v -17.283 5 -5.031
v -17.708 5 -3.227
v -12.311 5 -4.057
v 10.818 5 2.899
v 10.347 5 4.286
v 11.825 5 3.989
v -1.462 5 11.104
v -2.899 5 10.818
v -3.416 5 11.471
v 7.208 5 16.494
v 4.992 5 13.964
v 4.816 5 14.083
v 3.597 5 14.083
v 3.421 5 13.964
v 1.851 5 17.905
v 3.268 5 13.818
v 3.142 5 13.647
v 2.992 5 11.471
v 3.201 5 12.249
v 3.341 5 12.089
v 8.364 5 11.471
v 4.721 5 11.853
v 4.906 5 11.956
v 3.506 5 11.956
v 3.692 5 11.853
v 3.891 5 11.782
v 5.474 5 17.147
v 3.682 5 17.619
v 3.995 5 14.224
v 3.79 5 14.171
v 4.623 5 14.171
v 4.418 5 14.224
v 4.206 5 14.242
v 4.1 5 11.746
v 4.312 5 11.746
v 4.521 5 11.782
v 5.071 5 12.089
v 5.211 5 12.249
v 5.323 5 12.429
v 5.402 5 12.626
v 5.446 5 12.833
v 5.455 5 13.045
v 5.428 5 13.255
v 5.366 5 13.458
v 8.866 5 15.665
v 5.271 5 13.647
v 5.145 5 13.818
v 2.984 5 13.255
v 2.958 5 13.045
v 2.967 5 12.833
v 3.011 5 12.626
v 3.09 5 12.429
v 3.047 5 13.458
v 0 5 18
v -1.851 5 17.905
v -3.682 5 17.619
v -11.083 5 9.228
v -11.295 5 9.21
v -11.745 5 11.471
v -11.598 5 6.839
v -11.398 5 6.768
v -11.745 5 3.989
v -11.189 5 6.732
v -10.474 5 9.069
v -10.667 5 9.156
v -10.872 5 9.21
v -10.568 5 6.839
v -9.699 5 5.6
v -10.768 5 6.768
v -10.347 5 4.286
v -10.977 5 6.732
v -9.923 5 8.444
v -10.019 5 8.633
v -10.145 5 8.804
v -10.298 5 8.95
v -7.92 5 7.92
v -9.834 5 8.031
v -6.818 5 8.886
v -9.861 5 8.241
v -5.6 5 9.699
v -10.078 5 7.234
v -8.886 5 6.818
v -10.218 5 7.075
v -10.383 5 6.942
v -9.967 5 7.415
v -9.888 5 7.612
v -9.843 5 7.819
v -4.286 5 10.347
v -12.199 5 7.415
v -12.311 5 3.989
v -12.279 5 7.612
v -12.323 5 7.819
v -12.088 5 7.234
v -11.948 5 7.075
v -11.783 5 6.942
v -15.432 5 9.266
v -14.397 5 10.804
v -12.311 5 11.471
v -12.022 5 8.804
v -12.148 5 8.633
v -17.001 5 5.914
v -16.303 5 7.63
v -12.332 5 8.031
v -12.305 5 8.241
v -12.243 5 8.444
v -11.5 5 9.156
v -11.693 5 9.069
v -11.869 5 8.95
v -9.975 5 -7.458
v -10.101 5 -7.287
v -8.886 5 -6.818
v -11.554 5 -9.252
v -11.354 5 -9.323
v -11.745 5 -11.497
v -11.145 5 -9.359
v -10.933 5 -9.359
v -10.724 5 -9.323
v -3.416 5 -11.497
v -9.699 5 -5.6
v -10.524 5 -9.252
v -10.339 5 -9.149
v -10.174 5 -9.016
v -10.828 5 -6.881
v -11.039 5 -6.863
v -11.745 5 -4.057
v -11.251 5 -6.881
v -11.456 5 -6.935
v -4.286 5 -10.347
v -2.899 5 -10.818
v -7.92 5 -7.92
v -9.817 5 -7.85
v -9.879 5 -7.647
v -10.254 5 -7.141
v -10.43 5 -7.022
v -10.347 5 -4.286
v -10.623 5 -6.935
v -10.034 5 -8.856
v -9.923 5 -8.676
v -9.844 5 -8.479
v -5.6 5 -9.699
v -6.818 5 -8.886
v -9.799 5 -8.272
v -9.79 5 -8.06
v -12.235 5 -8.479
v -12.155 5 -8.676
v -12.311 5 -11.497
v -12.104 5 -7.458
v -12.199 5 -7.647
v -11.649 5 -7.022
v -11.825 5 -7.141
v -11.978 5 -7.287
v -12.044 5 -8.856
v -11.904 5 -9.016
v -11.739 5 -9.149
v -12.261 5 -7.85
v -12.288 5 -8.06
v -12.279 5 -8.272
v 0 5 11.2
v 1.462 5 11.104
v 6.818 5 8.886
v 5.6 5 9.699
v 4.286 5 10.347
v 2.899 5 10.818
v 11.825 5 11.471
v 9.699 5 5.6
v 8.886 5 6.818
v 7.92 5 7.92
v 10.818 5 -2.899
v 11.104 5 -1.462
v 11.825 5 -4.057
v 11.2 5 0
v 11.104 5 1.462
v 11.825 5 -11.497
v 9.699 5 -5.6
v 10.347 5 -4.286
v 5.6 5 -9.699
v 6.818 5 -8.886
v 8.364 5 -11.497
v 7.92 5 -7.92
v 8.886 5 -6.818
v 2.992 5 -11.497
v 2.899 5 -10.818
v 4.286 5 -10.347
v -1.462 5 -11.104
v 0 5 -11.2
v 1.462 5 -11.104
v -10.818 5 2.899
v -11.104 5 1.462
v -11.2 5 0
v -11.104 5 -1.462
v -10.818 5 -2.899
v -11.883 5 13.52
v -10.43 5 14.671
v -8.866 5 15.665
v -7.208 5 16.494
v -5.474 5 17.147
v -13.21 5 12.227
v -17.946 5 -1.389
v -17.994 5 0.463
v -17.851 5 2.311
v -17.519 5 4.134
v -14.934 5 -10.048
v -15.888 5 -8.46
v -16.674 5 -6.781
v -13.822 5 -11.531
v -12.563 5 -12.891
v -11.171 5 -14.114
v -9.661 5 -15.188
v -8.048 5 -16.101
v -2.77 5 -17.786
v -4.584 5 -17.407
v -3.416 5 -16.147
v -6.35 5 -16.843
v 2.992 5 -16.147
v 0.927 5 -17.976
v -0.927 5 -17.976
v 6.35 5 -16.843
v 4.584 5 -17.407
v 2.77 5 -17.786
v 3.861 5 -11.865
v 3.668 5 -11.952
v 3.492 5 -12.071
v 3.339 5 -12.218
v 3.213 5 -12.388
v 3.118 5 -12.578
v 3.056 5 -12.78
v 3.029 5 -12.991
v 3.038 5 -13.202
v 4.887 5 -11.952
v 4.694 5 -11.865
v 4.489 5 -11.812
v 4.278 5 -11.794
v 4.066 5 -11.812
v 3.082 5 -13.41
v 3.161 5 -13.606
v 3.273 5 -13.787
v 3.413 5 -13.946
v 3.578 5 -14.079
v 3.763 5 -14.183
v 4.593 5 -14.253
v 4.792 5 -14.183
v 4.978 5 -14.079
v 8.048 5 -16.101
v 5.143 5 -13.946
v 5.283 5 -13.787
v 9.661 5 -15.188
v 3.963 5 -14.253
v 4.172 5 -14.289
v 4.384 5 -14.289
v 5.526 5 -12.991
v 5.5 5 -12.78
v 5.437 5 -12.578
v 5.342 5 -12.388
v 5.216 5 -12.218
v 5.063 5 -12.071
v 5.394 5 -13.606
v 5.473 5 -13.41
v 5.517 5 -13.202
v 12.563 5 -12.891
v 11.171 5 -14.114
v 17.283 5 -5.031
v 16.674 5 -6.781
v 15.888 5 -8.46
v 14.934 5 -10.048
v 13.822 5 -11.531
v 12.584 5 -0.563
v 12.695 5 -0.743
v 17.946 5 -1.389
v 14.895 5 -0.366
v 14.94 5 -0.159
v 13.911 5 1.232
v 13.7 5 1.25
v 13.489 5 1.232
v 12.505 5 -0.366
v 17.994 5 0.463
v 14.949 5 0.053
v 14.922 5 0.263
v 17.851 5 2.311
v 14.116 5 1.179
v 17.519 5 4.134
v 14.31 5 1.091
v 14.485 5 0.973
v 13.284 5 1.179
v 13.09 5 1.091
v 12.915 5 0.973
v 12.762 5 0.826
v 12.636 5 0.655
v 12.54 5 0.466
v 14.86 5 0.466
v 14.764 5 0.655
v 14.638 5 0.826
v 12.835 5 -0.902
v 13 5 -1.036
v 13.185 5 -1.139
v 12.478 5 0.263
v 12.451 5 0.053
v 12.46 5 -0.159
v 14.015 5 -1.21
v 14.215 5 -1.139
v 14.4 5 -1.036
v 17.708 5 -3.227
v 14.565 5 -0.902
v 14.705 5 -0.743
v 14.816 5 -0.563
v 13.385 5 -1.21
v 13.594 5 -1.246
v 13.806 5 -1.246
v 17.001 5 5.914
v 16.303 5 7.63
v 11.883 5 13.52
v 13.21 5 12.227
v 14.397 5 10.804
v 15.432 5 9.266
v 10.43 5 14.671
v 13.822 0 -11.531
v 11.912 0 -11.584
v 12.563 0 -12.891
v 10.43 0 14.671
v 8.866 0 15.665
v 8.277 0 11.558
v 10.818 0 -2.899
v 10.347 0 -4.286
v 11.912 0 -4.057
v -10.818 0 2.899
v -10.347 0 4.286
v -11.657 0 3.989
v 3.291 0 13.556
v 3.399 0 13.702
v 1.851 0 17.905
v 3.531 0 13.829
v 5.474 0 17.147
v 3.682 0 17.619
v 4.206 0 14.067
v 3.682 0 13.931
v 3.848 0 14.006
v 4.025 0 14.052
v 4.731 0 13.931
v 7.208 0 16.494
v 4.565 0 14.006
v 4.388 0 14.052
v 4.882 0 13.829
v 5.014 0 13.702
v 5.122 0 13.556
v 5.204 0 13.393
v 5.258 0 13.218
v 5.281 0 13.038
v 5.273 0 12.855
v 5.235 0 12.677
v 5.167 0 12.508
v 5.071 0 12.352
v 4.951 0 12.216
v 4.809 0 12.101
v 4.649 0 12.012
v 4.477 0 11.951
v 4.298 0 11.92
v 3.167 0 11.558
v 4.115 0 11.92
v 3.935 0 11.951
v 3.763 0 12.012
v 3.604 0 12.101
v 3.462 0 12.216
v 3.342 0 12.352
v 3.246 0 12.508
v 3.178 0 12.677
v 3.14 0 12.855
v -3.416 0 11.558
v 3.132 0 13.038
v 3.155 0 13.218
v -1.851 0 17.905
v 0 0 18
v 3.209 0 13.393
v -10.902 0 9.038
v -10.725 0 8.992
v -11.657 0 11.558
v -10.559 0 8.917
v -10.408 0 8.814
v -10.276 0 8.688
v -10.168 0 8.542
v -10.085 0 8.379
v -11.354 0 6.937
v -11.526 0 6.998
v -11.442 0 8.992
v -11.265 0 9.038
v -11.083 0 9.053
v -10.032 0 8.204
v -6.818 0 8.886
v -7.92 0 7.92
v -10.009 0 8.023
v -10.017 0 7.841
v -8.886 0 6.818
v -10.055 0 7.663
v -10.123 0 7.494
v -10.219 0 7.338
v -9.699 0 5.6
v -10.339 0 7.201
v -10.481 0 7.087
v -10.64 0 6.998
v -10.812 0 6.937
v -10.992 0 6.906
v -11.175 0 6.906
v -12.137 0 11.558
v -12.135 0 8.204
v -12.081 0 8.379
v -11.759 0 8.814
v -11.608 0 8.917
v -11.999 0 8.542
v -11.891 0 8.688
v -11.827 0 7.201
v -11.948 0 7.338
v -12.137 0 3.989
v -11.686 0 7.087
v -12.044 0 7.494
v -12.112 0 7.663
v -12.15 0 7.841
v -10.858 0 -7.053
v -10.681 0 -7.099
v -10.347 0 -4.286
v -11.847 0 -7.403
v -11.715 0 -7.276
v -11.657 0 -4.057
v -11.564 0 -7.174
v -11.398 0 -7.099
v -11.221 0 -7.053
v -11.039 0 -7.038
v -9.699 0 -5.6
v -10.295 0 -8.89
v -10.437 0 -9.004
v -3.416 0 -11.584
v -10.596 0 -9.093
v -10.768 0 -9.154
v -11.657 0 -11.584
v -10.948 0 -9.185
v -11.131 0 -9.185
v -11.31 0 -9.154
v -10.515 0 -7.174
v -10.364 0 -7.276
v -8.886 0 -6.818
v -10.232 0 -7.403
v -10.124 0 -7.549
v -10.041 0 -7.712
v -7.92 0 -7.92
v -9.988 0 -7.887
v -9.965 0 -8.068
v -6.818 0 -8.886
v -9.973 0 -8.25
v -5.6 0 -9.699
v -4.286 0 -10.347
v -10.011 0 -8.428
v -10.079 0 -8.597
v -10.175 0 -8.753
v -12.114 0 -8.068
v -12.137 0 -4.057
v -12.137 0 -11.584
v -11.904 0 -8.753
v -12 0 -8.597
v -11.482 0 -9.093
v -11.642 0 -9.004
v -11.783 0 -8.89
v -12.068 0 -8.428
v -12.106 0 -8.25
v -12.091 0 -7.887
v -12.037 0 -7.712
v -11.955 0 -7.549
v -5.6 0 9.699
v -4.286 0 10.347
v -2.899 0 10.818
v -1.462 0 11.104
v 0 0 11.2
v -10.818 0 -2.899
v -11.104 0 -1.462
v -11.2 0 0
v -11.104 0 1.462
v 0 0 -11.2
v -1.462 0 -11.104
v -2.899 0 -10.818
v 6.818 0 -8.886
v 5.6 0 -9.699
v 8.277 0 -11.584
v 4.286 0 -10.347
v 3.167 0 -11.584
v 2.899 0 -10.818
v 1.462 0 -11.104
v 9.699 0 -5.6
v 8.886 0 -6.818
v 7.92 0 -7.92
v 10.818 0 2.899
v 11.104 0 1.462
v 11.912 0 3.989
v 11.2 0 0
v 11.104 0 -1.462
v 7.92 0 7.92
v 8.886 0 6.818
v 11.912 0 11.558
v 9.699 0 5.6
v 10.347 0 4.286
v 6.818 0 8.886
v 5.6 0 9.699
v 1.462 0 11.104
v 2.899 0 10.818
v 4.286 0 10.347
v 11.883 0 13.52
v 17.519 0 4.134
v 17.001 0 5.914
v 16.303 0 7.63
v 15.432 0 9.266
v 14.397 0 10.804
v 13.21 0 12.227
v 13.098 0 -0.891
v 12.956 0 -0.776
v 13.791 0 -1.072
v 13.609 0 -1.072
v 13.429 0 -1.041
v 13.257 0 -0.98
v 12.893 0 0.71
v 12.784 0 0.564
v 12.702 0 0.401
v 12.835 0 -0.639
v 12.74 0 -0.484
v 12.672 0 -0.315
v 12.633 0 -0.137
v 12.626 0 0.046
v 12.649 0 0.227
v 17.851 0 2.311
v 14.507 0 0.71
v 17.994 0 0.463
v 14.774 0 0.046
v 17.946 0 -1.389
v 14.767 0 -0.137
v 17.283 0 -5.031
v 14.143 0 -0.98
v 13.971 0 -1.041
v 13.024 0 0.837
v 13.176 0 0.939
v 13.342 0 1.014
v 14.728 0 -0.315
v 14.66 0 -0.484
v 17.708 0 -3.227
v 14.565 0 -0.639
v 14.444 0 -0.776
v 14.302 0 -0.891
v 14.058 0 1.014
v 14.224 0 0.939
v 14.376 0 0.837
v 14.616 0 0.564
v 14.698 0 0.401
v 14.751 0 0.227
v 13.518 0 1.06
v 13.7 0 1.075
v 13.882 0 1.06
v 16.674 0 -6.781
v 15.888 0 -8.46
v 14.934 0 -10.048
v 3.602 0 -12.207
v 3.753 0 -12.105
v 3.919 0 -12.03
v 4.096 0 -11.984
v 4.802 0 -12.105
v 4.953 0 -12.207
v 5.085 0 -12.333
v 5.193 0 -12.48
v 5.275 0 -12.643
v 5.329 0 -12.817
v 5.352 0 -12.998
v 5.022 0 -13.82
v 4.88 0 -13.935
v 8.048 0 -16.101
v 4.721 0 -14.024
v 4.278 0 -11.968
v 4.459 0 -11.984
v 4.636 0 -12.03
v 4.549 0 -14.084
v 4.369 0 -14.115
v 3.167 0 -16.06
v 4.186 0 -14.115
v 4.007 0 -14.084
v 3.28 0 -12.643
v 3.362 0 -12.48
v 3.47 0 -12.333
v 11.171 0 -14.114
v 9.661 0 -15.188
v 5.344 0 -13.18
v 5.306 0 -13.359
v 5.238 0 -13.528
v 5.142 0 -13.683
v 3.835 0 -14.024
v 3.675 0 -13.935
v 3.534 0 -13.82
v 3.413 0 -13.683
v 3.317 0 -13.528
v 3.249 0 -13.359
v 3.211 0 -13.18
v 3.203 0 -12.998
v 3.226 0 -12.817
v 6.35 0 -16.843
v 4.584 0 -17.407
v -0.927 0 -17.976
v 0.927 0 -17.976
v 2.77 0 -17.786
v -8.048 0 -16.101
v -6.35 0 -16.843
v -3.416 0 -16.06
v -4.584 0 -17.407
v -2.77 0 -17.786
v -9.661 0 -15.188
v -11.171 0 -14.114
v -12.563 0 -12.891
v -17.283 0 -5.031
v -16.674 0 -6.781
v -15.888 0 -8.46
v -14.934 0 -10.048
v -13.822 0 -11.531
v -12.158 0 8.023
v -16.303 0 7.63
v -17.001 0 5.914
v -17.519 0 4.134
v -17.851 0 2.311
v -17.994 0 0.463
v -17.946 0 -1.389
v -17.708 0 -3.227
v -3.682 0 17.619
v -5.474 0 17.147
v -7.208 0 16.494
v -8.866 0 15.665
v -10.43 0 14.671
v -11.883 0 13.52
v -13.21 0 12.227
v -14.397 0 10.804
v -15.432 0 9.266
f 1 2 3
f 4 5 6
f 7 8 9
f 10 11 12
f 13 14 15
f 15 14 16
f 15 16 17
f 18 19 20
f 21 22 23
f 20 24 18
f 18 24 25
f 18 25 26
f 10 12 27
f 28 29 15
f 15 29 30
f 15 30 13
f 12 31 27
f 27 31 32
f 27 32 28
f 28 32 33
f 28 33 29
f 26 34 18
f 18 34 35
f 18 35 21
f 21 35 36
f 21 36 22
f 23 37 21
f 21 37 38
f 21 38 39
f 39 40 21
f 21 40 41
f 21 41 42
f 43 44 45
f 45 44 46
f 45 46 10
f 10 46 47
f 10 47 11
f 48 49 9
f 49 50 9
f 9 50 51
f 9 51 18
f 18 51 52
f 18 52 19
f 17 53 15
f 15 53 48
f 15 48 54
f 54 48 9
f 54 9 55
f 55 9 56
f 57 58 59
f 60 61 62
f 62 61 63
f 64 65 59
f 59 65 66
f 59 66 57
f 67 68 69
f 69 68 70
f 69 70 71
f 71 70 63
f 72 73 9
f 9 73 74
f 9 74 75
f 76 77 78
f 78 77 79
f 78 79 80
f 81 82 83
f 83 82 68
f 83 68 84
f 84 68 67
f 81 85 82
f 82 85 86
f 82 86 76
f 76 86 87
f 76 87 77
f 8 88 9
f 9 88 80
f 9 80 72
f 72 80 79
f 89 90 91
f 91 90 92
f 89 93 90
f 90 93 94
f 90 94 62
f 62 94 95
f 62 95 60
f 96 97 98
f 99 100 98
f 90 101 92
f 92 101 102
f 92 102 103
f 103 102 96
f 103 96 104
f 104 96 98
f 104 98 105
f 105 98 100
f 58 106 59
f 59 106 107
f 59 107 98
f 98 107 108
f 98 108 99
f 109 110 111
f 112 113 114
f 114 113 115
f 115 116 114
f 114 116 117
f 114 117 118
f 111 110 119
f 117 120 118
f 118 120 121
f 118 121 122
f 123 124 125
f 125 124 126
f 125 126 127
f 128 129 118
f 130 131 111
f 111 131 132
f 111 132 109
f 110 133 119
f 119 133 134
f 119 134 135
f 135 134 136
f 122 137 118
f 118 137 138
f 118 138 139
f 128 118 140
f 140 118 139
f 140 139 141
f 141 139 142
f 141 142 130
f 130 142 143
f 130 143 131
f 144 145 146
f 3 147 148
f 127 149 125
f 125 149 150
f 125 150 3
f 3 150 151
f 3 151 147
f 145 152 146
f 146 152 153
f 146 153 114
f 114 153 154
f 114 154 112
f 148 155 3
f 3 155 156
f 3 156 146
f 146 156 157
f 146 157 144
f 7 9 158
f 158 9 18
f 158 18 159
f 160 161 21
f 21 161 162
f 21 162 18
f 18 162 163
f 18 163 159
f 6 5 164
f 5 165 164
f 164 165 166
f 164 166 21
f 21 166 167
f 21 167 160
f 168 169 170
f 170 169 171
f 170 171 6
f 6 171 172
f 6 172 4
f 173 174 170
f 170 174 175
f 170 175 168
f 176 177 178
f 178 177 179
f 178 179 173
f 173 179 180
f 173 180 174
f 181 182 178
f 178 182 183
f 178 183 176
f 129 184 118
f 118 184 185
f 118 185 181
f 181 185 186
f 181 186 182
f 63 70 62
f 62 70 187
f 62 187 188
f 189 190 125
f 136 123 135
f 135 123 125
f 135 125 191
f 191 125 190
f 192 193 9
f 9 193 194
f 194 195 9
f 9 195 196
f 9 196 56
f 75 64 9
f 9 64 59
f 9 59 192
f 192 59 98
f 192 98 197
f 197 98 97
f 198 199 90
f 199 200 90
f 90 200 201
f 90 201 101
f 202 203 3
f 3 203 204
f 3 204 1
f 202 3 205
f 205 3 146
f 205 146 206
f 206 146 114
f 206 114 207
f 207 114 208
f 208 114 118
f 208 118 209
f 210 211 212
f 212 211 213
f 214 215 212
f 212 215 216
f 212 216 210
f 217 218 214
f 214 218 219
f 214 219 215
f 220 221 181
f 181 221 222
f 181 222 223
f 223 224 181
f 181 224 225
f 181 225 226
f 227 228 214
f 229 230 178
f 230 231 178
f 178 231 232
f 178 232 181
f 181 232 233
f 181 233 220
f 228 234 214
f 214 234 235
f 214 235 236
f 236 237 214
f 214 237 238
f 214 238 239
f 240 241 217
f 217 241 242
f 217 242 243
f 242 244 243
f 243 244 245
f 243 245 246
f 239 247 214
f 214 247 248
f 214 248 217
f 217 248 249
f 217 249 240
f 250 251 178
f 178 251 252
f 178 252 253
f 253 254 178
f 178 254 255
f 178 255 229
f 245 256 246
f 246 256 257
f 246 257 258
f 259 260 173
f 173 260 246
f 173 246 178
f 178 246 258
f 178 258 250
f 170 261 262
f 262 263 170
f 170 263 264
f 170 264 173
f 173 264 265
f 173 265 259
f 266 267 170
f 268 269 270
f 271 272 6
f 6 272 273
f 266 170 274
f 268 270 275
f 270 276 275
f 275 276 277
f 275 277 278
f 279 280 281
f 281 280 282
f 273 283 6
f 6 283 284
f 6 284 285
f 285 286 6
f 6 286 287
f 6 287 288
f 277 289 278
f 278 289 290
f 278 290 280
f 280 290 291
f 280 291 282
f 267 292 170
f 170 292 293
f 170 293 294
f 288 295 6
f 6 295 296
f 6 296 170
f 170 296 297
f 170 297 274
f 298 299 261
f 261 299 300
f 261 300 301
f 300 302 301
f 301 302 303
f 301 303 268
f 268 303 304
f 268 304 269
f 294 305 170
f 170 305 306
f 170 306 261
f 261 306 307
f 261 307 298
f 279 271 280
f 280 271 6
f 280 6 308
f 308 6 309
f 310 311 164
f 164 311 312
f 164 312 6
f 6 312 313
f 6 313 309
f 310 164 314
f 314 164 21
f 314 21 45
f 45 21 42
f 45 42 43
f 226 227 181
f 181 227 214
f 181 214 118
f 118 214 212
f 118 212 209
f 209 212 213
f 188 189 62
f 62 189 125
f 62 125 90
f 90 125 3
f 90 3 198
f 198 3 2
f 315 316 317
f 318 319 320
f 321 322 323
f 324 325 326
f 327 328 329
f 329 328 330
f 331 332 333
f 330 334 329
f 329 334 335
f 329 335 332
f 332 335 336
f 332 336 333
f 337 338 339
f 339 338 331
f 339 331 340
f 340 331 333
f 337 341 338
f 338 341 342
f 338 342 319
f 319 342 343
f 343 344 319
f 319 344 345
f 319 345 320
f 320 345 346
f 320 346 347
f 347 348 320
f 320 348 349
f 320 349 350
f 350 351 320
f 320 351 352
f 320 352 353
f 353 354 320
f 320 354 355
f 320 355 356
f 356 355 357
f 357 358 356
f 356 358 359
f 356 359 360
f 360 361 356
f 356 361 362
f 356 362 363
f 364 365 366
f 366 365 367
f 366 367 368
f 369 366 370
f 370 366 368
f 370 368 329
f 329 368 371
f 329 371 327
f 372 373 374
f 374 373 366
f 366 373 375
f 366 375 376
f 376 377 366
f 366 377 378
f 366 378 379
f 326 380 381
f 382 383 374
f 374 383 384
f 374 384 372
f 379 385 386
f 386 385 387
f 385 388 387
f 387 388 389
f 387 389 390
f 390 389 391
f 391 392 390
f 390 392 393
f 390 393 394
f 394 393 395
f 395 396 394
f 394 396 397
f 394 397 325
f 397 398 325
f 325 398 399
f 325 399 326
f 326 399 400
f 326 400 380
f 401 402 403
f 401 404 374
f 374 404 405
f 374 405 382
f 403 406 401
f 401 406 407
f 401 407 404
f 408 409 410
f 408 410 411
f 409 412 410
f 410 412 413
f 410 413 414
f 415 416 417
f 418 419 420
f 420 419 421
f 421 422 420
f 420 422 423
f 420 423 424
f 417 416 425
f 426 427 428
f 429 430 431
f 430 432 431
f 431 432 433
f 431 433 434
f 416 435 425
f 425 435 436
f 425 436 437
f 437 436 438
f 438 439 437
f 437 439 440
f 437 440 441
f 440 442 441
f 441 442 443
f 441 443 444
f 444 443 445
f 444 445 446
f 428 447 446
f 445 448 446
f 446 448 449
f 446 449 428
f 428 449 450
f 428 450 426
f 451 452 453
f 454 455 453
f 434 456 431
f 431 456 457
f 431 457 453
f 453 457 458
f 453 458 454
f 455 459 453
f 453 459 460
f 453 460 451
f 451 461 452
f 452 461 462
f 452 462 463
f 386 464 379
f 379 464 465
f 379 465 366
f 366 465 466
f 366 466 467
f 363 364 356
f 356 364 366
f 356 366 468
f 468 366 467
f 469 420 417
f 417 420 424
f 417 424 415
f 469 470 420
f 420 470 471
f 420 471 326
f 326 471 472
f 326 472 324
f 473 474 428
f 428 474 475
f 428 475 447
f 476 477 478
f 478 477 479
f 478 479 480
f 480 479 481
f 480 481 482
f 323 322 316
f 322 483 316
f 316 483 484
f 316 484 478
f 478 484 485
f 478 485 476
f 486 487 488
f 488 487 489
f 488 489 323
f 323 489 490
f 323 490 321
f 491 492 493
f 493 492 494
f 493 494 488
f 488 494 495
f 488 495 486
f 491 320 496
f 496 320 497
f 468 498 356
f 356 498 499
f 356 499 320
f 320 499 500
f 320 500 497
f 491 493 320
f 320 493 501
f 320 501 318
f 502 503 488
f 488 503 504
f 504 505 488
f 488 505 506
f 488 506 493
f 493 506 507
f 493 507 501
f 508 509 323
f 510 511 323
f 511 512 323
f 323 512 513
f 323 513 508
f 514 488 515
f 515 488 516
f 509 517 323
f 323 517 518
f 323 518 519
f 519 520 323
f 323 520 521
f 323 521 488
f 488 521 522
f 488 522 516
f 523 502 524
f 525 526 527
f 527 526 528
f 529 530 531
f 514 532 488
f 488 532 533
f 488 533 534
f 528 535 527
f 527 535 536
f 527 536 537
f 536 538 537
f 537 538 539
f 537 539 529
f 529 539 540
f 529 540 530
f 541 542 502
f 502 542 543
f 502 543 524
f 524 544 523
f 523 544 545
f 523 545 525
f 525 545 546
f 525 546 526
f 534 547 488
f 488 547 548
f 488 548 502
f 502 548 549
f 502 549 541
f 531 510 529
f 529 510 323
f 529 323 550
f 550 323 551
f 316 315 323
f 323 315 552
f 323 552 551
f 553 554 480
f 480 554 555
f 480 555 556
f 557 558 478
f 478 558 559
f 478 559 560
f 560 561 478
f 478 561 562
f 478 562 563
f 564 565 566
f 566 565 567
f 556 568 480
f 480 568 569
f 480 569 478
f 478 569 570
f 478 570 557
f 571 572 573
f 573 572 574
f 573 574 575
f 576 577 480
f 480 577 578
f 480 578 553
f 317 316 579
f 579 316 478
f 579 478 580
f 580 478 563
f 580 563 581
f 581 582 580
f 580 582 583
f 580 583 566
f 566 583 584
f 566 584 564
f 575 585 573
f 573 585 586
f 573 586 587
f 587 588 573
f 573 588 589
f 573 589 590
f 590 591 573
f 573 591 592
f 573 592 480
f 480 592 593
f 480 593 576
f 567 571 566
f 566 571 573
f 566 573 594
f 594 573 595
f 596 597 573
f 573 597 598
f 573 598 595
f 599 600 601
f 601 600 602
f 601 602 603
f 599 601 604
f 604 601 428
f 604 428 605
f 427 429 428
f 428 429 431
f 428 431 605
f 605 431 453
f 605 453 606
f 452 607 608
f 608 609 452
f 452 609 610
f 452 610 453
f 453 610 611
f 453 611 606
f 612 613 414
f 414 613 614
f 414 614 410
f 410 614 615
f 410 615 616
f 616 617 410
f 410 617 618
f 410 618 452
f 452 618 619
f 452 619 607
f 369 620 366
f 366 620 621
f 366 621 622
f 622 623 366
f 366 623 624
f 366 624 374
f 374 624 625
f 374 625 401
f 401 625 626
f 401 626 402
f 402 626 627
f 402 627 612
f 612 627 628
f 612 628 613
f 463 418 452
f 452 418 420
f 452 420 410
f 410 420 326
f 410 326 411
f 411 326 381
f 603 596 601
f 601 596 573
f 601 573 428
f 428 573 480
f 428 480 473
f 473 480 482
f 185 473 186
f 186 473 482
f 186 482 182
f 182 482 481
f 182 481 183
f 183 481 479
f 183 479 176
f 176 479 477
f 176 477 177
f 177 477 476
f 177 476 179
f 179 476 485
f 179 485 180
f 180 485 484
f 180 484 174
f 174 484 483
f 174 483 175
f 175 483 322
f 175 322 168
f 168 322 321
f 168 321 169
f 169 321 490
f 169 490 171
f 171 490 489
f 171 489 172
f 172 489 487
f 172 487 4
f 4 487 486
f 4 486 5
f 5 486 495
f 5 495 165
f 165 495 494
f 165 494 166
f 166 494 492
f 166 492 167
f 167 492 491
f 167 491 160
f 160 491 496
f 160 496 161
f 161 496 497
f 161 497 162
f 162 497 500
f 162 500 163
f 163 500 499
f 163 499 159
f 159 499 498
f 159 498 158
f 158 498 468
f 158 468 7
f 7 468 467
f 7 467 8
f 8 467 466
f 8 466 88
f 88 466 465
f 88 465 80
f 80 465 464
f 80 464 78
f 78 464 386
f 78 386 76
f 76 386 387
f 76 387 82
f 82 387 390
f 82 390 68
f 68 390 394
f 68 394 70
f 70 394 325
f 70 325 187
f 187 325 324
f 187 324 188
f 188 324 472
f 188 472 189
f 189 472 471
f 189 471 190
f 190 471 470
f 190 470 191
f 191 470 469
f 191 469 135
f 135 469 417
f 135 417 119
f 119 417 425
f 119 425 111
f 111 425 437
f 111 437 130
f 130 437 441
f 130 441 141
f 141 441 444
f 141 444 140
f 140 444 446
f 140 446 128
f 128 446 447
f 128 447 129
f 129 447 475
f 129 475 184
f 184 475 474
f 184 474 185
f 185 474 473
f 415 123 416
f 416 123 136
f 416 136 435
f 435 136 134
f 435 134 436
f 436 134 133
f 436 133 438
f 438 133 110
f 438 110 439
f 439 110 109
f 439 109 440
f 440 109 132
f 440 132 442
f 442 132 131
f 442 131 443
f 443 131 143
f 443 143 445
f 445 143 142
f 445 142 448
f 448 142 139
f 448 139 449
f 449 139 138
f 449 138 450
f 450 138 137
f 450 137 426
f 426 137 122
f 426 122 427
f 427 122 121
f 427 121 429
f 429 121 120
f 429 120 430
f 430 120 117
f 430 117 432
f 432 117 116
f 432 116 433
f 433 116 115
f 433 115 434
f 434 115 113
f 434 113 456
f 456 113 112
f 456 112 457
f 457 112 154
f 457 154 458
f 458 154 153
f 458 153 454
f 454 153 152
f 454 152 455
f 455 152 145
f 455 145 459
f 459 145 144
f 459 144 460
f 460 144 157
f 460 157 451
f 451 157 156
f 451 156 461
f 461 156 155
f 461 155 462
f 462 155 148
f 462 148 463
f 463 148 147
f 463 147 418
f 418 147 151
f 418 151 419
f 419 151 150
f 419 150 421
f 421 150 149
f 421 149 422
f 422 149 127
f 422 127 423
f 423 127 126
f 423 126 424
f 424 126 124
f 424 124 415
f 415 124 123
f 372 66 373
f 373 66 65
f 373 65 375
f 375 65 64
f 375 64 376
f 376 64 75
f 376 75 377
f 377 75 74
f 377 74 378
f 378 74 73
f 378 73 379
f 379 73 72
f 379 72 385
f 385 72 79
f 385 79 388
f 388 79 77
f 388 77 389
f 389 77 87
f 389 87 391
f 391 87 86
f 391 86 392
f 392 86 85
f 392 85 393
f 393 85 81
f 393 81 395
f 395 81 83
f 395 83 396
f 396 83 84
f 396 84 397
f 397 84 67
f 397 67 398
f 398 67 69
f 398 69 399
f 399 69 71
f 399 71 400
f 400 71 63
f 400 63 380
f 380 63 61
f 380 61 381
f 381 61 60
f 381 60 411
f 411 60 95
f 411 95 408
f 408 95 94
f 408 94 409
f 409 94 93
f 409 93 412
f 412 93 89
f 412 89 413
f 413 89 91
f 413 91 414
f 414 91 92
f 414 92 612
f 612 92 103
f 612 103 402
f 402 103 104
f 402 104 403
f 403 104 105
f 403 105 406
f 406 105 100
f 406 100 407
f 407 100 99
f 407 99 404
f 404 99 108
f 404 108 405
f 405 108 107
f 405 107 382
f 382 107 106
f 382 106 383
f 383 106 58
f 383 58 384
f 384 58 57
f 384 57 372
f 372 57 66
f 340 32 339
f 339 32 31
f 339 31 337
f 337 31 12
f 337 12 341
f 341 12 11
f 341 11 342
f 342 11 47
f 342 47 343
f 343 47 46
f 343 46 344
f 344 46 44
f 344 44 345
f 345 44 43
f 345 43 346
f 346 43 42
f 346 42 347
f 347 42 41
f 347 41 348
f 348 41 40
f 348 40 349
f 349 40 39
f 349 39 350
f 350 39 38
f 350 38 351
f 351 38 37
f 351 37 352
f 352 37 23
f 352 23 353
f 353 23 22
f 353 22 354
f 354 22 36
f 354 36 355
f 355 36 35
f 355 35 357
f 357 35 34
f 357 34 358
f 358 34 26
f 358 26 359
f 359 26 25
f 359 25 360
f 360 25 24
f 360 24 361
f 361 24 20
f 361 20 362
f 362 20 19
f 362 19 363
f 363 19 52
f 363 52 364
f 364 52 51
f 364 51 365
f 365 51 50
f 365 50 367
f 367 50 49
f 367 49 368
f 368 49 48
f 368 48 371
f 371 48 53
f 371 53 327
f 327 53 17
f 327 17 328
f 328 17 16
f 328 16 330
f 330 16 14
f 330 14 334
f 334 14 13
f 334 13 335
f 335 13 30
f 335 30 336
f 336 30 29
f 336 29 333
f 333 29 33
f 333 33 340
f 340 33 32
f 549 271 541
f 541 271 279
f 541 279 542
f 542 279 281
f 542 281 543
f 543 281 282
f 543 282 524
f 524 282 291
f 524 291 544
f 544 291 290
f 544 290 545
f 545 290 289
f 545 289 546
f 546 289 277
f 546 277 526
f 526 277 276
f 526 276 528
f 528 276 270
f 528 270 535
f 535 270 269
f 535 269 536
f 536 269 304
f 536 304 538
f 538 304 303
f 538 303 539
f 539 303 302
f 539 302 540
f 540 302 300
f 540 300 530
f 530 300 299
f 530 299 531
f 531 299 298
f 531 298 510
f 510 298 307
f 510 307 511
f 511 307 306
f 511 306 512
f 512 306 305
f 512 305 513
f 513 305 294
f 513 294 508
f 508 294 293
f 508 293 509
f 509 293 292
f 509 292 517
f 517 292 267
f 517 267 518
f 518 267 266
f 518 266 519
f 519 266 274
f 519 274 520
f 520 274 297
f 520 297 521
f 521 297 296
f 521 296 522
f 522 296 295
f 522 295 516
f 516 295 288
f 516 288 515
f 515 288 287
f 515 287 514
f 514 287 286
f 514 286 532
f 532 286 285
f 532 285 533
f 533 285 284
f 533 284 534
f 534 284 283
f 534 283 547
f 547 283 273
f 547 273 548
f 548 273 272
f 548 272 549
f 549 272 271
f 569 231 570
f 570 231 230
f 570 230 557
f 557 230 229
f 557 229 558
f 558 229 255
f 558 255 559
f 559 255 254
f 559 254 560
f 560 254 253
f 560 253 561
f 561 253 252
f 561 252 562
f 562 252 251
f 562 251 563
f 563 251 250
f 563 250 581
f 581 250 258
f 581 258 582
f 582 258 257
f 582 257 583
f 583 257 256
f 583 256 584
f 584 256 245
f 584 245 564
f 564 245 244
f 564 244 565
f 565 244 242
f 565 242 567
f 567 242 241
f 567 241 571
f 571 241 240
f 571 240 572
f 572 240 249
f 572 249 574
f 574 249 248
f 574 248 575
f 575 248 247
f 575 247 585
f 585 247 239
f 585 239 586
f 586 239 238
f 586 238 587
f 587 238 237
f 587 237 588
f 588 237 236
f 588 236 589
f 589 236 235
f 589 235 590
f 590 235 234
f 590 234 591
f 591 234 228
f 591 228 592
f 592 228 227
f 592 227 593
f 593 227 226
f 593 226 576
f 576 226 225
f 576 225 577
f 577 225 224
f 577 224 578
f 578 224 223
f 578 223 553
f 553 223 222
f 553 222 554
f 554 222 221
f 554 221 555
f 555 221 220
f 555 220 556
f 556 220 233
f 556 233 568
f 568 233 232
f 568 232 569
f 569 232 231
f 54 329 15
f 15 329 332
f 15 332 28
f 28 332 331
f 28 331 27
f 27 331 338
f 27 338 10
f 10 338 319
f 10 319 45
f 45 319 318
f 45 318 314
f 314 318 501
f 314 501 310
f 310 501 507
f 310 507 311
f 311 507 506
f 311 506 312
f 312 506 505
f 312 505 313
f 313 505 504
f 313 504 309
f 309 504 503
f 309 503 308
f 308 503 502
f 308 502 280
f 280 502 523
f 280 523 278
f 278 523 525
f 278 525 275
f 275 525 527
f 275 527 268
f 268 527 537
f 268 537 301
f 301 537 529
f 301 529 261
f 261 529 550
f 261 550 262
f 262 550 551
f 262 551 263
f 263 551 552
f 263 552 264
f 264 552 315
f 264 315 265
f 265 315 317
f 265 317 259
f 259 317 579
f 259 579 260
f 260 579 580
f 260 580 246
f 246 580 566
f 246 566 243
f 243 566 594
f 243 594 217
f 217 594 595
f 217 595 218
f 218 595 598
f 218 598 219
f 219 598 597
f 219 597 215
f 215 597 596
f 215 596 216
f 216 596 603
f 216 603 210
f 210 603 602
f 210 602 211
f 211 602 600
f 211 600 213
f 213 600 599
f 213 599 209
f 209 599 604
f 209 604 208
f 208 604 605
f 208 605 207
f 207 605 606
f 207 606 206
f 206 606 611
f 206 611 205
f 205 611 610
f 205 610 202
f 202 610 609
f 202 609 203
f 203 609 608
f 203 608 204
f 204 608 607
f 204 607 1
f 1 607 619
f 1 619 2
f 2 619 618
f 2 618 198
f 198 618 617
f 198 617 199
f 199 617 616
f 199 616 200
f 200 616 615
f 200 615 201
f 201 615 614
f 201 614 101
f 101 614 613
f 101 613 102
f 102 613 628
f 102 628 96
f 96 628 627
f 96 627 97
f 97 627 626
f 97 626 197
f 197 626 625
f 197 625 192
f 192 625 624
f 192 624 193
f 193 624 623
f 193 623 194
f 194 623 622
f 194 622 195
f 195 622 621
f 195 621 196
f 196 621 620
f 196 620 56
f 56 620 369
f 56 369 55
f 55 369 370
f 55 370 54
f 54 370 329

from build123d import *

# Parameters (mm, degrees)
SKETCH1_R                    = 16.2
SKETCH1_R_2                  = 11.2
BOSS_EXTRUDE2_DEPTH          = 5
SKETCH2_R                    = 1.25
CUT_EXTRUDE1_DEPTH           = 5
CUT_EXTRUDE1_DRAFT           = -2
CUT_EXTRUDE1_PROFILE_2_DEPTH = 5
CUT_EXTRUDE1_PROFILE_2_DRAFT = -2
CUT_EXTRUDE1_PROFILE_3_DEPTH = 5
CUT_EXTRUDE1_PROFILE_3_DRAFT = -2
CUT_EXTRUDE1_PROFILE_4_DEPTH = 5
CUT_EXTRUDE1_PROFILE_4_DRAFT = -2
CUT_EXTRUDE1_PROFILE_5_DEPTH = 5
CUT_EXTRUDE1_PROFILE_5_DRAFT = -2
SKETCH3_R                    = 18
SKETCH3_R_2                  = 16
BOSS_EXTRUDE4_DEPTH          = 5


with BuildPart() as part:
    # Sketch1 → Boss-Extrude2 (new body)
    with BuildSketch(Plane(origin=(0, 0, 0), x_dir=(1, 0, 0), z_dir=(0, 1, 0))):
        with Locations(Location((0, 0, 0), (0, 0, 270))):
            Circle(SKETCH1_R)
        with Locations(Location((0, 0, 0), (0, 0, 270))):
            Circle(SKETCH1_R_2, mode=Mode.SUBTRACT)
    extrude(amount=BOSS_EXTRUDE2_DEPTH)


with BuildPart() as cut_extrude1_tool:
    # Sketch2 → Cut-Extrude1 (with draft: the straight prism first)
    with BuildSketch(Plane(origin=(0, 5, 0), x_dir=(1, 0, 0), z_dir=(0, 1, 0))):
        with Locations((-11.039322132, 8.113160104)):
            Circle(SKETCH2_R)
    extrude(amount=-CUT_EXTRUDE1_DEPTH)
    # Cut-Extrude1: the draft: its side faces are tilted about the plane it starts from
    cut_extrude1_sides = [cut_extrude1_tool.faces().sort_by_distance(p)[0] for p in [
        (-12.289322132, 2.5, -8.113160104),
    ]]
    draft(cut_extrude1_sides, Plane(origin=(0, 5, 0), x_dir=(1, 0, 0), z_dir=(0, 1, 0)), CUT_EXTRUDE1_DRAFT)


with BuildPart() as part_1:
    add(part.part)

    # Cut-Extrude1: cut by cut_extrude1_tool
    add(cut_extrude1_tool.part, mode=Mode.SUBTRACT)


with BuildPart() as cut_extrude1_profile_2_tool:
    # Sketch2 → Cut-Extrude1 profile 2 (with draft: the straight prism first)
    with BuildSketch(Plane(origin=(0, 5, 0), x_dir=(1, 0, 0), z_dir=(0, 1, 0))):
        with Locations((-11.083327892, -7.977724299)):
            Circle(SKETCH2_R)
    extrude(amount=-CUT_EXTRUDE1_PROFILE_2_DEPTH)
    # Cut-Extrude1 profile 2: the draft: its side faces are tilted about the plane it starts from
    cut_extrude1_profile_2_sides = [cut_extrude1_profile_2_tool.faces().sort_by_distance(p)[0] for p in [
        (-12.333327892, 2.5, 7.977724299),
    ]]
    draft(cut_extrude1_profile_2_sides, Plane(origin=(0, 5, 0), x_dir=(1, 0, 0), z_dir=(0, 1, 0)), CUT_EXTRUDE1_PROFILE_2_DRAFT)


with BuildPart() as part_2:
    add(part_1.part)

    # Cut-Extrude1 profile 2: cut by cut_extrude1_profile_2_tool
    add(cut_extrude1_profile_2_tool.part, mode=Mode.SUBTRACT)


with BuildPart() as cut_extrude1_profile_3_tool:
    # Sketch2 → Cut-Extrude1 profile 3 (with draft: the straight prism first)
    with BuildSketch(Plane(origin=(0, 5, 0), x_dir=(1, 0, 0), z_dir=(0, 1, 0))):
        with Locations((4.206414044, -12.991932999)):
            Circle(SKETCH2_R)
    extrude(amount=-CUT_EXTRUDE1_PROFILE_3_DEPTH)
    # Cut-Extrude1 profile 3: the draft: its side faces are tilted about the plane it starts from
    cut_extrude1_profile_3_sides = [cut_extrude1_profile_3_tool.faces().sort_by_distance(p)[0] for p in [
        (2.956414044, 2.5, 12.991932999),
    ]]
    draft(cut_extrude1_profile_3_sides, Plane(origin=(0, 5, 0), x_dir=(1, 0, 0), z_dir=(0, 1, 0)), CUT_EXTRUDE1_PROFILE_3_DRAFT)


with BuildPart() as part_3:
    add(part_2.part)

    # Cut-Extrude1 profile 3: cut by cut_extrude1_profile_3_tool
    add(cut_extrude1_profile_3_tool.part, mode=Mode.SUBTRACT)


with BuildPart() as cut_extrude1_profile_4_tool:
    # Sketch2 → Cut-Extrude1 profile 4 (with draft: the straight prism first)
    with BuildSketch(Plane(origin=(0, 5, 0), x_dir=(1, 0, 0), z_dir=(0, 1, 0))):
        with Locations((13.7, 0)):
            Circle(SKETCH2_R)
    extrude(amount=-CUT_EXTRUDE1_PROFILE_4_DEPTH)
    # Cut-Extrude1 profile 4: the draft: its side faces are tilted about the plane it starts from
    cut_extrude1_profile_4_sides = [cut_extrude1_profile_4_tool.faces().sort_by_distance(p)[0] for p in [
        (12.45, 2.5, 0),
    ]]
    draft(cut_extrude1_profile_4_sides, Plane(origin=(0, 5, 0), x_dir=(1, 0, 0), z_dir=(0, 1, 0)), CUT_EXTRUDE1_PROFILE_4_DRAFT)


with BuildPart() as part_4:
    add(part_3.part)

    # Cut-Extrude1 profile 4: cut by cut_extrude1_profile_4_tool
    add(cut_extrude1_profile_4_tool.part, mode=Mode.SUBTRACT)


with BuildPart() as cut_extrude1_profile_5_tool:
    # Sketch2 → Cut-Extrude1 profile 5 (with draft: the straight prism first)
    with BuildSketch(Plane(origin=(0, 5, 0), x_dir=(1, 0, 0), z_dir=(0, 1, 0))):
        with Locations((4.27761686, 13.043664873)):
            Circle(SKETCH2_R)
    extrude(amount=-CUT_EXTRUDE1_PROFILE_5_DEPTH)
    # Cut-Extrude1 profile 5: the draft: its side faces are tilted about the plane it starts from
    cut_extrude1_profile_5_sides = [cut_extrude1_profile_5_tool.faces().sort_by_distance(p)[0] for p in [
        (3.02761686, 2.5, -13.043664873),
    ]]
    draft(cut_extrude1_profile_5_sides, Plane(origin=(0, 5, 0), x_dir=(1, 0, 0), z_dir=(0, 1, 0)), CUT_EXTRUDE1_PROFILE_5_DRAFT)


with BuildPart() as part_5:
    add(part_4.part)

    # Cut-Extrude1 profile 5: cut by cut_extrude1_profile_5_tool
    add(cut_extrude1_profile_5_tool.part, mode=Mode.SUBTRACT)

    # Sketch3 → Boss-Extrude4 (add)
    with BuildSketch(Plane(origin=(0, 5, 0), x_dir=(1, 0, 0), z_dir=(0, 1, 0))):
        with Locations(Location((0, 0, 0), (0, 0, 270))):
            Circle(SKETCH3_R)
        Circle(SKETCH3_R_2, mode=Mode.SUBTRACT)
    extrude(amount=-BOSS_EXTRUDE4_DEPTH)


solid = part_5.part
